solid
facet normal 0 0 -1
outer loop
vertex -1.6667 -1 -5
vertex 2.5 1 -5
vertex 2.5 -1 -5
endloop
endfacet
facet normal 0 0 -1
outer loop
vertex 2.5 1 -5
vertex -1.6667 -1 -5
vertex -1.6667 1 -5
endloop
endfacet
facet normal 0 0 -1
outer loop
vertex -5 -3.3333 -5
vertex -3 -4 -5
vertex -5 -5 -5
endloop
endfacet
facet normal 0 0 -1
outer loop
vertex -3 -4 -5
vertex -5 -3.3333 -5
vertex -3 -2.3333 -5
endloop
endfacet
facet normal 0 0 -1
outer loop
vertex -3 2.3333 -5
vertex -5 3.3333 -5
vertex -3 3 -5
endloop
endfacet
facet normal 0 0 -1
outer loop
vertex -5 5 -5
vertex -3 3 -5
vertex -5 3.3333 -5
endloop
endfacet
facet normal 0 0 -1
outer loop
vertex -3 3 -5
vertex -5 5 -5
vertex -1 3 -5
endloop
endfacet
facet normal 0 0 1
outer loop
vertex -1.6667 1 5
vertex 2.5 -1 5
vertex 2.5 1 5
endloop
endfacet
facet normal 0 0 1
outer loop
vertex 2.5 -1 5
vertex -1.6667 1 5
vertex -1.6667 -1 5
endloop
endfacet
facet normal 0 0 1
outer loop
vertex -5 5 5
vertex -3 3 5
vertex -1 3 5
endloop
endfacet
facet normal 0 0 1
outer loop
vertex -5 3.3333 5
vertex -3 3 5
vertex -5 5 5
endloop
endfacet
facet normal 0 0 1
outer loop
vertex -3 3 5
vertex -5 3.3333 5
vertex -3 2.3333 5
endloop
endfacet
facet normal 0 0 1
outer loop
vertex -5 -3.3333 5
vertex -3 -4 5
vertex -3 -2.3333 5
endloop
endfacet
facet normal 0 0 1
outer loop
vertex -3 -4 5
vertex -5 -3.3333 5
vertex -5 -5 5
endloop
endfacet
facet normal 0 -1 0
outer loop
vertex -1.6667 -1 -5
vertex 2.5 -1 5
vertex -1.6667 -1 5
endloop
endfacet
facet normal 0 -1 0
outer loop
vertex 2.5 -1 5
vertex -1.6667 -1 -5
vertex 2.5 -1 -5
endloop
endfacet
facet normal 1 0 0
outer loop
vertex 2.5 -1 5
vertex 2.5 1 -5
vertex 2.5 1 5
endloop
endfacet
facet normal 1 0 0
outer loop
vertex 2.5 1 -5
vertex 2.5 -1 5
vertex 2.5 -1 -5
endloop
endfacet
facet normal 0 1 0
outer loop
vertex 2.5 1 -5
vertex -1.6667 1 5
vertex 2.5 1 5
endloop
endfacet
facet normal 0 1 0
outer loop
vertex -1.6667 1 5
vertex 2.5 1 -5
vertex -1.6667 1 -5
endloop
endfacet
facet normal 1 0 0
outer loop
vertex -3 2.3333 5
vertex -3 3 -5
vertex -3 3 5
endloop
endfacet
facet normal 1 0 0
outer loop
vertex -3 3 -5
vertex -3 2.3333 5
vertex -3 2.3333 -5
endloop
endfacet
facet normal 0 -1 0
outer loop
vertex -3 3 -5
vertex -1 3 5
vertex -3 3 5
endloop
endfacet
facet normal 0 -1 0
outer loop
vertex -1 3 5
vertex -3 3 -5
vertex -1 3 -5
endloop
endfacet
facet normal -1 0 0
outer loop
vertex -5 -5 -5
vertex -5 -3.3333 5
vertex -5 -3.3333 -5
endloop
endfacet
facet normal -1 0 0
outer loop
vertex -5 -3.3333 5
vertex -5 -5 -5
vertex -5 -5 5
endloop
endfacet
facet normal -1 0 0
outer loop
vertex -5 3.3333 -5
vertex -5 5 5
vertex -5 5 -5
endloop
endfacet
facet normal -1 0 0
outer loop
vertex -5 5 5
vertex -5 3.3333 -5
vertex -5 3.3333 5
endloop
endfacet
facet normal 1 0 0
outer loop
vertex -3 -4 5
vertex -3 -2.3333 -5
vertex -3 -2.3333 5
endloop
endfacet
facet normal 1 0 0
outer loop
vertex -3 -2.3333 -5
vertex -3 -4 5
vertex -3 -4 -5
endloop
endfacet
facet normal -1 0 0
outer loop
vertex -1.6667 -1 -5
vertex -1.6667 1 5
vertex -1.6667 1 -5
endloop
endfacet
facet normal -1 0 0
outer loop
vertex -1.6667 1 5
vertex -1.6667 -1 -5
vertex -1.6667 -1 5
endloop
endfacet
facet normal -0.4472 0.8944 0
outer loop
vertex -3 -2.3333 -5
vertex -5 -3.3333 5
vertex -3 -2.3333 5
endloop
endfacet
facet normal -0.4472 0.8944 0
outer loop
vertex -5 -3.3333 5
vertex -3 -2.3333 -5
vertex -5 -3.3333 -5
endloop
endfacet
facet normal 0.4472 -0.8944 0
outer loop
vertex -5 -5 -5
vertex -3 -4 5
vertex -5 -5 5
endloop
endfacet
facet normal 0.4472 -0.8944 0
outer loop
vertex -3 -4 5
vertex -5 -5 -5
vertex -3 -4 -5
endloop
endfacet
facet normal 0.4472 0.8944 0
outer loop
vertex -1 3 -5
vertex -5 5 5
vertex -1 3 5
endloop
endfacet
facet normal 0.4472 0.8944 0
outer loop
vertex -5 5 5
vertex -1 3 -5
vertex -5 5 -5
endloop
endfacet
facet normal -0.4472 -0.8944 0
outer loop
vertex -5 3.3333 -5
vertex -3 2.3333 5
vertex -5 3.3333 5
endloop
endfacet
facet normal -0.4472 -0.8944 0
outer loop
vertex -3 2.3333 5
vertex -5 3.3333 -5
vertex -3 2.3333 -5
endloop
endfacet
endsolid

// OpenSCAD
// Generated by SolidPython 1.1.3 on 2025-02-20 04:04:12
$fn=50;


intersection() {
	translate(v = [-5.0000000000, -5.0000000000, -5.0000000000]) {
		linear_extrude(height = 10) {
			polygon(points = [[0, 0], [2.0000000000, 0], [2.0000000000, 4.0000000000], [7.5000000000, 4.0000000000], [7.5000000000, 6.0000000000], [2.0000000000, 6.0000000000], [2.0000000000, 8.0000000000], [10, 8.0000000000], [10, 10], [0, 10]]);
		}
	}
	rotate(a = -90, v = [0, 0, 1]) {
		translate(v = [-5.0000000000, -5.0000000000, -5.0000000000]) {
			linear_extrude(height = 10) {
				polygon(points = [[0, 0], [5.0000000000, 10], [10, 0], [8.3333333333, 0], [6.6666666667, 3.3333333333], [3.3333333333, 3.3333333333], [1.6666666667, 0]]);
			}
		}
	}
}
/***********************************************
*********      SolidPython code:      **********
************************************************
 
from solid import *
from solid.utils import *

import math
import matplotlib.pyplot as plt
import subprocess
import os

class Hole:
    def __init__(self, x, y, radius):
        """
        Hole defined by:
        :param x: x dimension for center point of the circle as a ratio of letter height
        :param y: y dimension for center point of the circle as a ratio of letter height
        :param radius: radius of circle as a ratio of letter height
        """
        self.x = x
        self.y = y
        self.radius = radius

class Letter3D:
    def __init__(self, name, outer_shape_points, height, holes=None):
        """
        3D Letter defined by:
        :param name: name of letter
        :param outer_shape_points: points defining the outer shape of the letter
        :param heigh: size of cube that letter fits inside
        :param holes: list of Holes
        """
        self.name = name
        self.outer_shape_points = outer_shape_points
        self.holes = holes if holes is None else []
        self.height = height


    def generate(self):
        shape = polygon(points=self.outer_shape_points)

        if self.holes:
            for hole in self.holes:
                circle_hole = circle(r=hole.radius*self.height)
                positioned_hole = translate([hole.x*self.height, hole.y*self.height])(circle_hole)
                shape = difference()(shape, positioned_hole)
        
        shape_3d = linear_extrude(height=self.height)(shape)
        shape_3d = translate([-self.height/2, -self.height/2, -self.height/2])(shape_3d)
        return shape_3d
    
    def render(self):
        scad_render_to_file(self.shape, f"output/{self.name}.scad", file_header='$fn=50;')
        subprocess.run(["C:\\Program Files\\OpenSCAD\\openscad.exe", "-o", f"output\\{self.name}.stl", f"output\\{self.name}.scad"])


class TwoLetter3D:
    def __init__(self, height, letterA, letterA_face, letterB=None, letterB_face=None):
        self.height = height
        self.letterA = letterA
        self.letterB = letterB
        self.letterA_face = letterA_face
        self.letterB_face = letterB_face

    def call_letter_generation(self, letter):
        letter = letter.upper()
        function_name = f"letter_{letter}"
        func = globals().get(function_name)
        if func is None:
            raise ValueError(f"No letter generation function defined for letter '{letter}'.")
        else:
            print(func)
        return func(self.height)
    
    def rotate_object(self, face, shape):
        face = face.lower()
        if face == "z":
            return shape
        if face == "x":
            return rotate(a=90, v=[0,1,0])(shape)
        if face == "y":
            return rotate(a=-90, v=[0,0,1])(shape)
        else:
            raise ValueError("Face must be one of 'x', 'y', or 'z'.")

    def render(self):
        if self.letterA:
            letterA3D = self.call_letter_generation(self.letterA)
            letterA3D = self.rotate_object(self.letterA_face, letterA3D)

        if self.letterB:
            letterB3D = self.call_letter_generation(self.letterB)
            letterB3D = self.rotate_object(self.letterB_face, letterB3D)
            combined = intersection()(letterA3D, letterB3D)
            file_name = self.letterA + self.letterB
            scad_render_to_file(combined, f"output/{file_name}.scad", file_header='$fn=50;')
            subprocess.run(["C:\\Program Files\\OpenSCAD\\openscad.exe", "-o", f"output\\{file_name}.stl", f"output\\{file_name}.scad"])
            return
        else:
            file_name = self.letterA
            scad_render_to_file(letterA3D, f"output/{file_name}.scad", file_header='$fn=50;')
            subprocess.run(["C:\\Program Files\\OpenSCAD\\openscad.exe", "-o", f"output\\{file_name}.stl", f"output\\{file_name}.scad"])
    
                

def arc_points(radius, start_angle, end_angle, center=[0,0], num_points=50):
    angles = [start_angle + i * (end_angle - start_angle) / (num_points - 1)
              for i in range(num_points)]
    points = [
        (center[0] + radius * math.cos(math.radians(angle)),
         center[1] + radius * math.sin(math.radians(angle)))
        for angle in angles
    ]
    return points

def letter_A(h):
    shape_points = [(0,0), (h/2, h), (h, 0), (5/6*h, 0), (2/3*h, 1/3*h), (1/3*h, 1/3*h), (h/6, 0)]
    holes = [Hole(1/2, 7/12, 1/6)]
    A = Letter3D("A", shape_points, h, holes)
    return A.generate()

def letter_B(h):
    top_arc_points = arc_points(h/4, 90, -90, center=[3/4*h, 3/4*h])
    bottom_arc_points = arc_points(h/4, 90, -90, center=[3/4*h, h/4])
    other_points = [(0,0),(0,h)]

    shape_points = top_arc_points + bottom_arc_points + other_points
    holes = [Hole(1/2, 3/4, 1/6), Hole(1/2, 1/4, 1/6)]
    B = Letter3D("B", shape_points, h, holes)
    return B.generate()

def letter_C(h):
    outer_arc_points = arc_points(h/2, 30, 330, center=[h/2,h/2])
    inner_arc_points = arc_points(h/4, 30, 330, center=[h/2,h/2])[::-1]
    shape_points = outer_arc_points + inner_arc_points
    # print(shape_points)
    C = Letter3D("C", shape_points, h)
    return C.generate()


def letter_D(h):
    outer_arc_points = arc_points(h/2, 90, -90, center= [h/2, h/2])
    shape_points = outer_arc_points + [(0,0), (0, h)]
    holes = [Hole(1/2, 1/2, 1/6)]
    D = Letter3D("D", shape_points, h, holes)
    return D.generate()

def letter_E(h):
    points = [(0,0), (h,0), (h,h/5), (h/5,h/5), (h/5,2/5*h), (3/4*h,2/5*h), (3/4*h,3/5*h), (h/5,3/5*h), (h/5,4/5*h), (h,4/5*h), (h,h), (0,h)]
    E = Letter3D("E", points, h)
    return E.generate()

def letter_F(h):
    points = [(0,0), (h/5,0), (h/5,2/5*h), (3/4*h,2/5*h), (3/4*h,3/5*h), (h/5,3/5*h), (h/5,4/5*h), (h,4/5*h), (h,h), (0,h)]
    F = Letter3D("F", points, h)
    return F.generate()

if __name__ == "__main__":
    os.makedirs("output", exist_ok=True)
    # Generate all combos
    letters = [chr(x) for x in range(ord('A'), ord('F') + 1)]
    for letter in letters:
        for other_letter in letters:
            shape = TwoLetter3D(10, letter, "z", other_letter, "y")
            shape.render()
 
 
************************************************/
